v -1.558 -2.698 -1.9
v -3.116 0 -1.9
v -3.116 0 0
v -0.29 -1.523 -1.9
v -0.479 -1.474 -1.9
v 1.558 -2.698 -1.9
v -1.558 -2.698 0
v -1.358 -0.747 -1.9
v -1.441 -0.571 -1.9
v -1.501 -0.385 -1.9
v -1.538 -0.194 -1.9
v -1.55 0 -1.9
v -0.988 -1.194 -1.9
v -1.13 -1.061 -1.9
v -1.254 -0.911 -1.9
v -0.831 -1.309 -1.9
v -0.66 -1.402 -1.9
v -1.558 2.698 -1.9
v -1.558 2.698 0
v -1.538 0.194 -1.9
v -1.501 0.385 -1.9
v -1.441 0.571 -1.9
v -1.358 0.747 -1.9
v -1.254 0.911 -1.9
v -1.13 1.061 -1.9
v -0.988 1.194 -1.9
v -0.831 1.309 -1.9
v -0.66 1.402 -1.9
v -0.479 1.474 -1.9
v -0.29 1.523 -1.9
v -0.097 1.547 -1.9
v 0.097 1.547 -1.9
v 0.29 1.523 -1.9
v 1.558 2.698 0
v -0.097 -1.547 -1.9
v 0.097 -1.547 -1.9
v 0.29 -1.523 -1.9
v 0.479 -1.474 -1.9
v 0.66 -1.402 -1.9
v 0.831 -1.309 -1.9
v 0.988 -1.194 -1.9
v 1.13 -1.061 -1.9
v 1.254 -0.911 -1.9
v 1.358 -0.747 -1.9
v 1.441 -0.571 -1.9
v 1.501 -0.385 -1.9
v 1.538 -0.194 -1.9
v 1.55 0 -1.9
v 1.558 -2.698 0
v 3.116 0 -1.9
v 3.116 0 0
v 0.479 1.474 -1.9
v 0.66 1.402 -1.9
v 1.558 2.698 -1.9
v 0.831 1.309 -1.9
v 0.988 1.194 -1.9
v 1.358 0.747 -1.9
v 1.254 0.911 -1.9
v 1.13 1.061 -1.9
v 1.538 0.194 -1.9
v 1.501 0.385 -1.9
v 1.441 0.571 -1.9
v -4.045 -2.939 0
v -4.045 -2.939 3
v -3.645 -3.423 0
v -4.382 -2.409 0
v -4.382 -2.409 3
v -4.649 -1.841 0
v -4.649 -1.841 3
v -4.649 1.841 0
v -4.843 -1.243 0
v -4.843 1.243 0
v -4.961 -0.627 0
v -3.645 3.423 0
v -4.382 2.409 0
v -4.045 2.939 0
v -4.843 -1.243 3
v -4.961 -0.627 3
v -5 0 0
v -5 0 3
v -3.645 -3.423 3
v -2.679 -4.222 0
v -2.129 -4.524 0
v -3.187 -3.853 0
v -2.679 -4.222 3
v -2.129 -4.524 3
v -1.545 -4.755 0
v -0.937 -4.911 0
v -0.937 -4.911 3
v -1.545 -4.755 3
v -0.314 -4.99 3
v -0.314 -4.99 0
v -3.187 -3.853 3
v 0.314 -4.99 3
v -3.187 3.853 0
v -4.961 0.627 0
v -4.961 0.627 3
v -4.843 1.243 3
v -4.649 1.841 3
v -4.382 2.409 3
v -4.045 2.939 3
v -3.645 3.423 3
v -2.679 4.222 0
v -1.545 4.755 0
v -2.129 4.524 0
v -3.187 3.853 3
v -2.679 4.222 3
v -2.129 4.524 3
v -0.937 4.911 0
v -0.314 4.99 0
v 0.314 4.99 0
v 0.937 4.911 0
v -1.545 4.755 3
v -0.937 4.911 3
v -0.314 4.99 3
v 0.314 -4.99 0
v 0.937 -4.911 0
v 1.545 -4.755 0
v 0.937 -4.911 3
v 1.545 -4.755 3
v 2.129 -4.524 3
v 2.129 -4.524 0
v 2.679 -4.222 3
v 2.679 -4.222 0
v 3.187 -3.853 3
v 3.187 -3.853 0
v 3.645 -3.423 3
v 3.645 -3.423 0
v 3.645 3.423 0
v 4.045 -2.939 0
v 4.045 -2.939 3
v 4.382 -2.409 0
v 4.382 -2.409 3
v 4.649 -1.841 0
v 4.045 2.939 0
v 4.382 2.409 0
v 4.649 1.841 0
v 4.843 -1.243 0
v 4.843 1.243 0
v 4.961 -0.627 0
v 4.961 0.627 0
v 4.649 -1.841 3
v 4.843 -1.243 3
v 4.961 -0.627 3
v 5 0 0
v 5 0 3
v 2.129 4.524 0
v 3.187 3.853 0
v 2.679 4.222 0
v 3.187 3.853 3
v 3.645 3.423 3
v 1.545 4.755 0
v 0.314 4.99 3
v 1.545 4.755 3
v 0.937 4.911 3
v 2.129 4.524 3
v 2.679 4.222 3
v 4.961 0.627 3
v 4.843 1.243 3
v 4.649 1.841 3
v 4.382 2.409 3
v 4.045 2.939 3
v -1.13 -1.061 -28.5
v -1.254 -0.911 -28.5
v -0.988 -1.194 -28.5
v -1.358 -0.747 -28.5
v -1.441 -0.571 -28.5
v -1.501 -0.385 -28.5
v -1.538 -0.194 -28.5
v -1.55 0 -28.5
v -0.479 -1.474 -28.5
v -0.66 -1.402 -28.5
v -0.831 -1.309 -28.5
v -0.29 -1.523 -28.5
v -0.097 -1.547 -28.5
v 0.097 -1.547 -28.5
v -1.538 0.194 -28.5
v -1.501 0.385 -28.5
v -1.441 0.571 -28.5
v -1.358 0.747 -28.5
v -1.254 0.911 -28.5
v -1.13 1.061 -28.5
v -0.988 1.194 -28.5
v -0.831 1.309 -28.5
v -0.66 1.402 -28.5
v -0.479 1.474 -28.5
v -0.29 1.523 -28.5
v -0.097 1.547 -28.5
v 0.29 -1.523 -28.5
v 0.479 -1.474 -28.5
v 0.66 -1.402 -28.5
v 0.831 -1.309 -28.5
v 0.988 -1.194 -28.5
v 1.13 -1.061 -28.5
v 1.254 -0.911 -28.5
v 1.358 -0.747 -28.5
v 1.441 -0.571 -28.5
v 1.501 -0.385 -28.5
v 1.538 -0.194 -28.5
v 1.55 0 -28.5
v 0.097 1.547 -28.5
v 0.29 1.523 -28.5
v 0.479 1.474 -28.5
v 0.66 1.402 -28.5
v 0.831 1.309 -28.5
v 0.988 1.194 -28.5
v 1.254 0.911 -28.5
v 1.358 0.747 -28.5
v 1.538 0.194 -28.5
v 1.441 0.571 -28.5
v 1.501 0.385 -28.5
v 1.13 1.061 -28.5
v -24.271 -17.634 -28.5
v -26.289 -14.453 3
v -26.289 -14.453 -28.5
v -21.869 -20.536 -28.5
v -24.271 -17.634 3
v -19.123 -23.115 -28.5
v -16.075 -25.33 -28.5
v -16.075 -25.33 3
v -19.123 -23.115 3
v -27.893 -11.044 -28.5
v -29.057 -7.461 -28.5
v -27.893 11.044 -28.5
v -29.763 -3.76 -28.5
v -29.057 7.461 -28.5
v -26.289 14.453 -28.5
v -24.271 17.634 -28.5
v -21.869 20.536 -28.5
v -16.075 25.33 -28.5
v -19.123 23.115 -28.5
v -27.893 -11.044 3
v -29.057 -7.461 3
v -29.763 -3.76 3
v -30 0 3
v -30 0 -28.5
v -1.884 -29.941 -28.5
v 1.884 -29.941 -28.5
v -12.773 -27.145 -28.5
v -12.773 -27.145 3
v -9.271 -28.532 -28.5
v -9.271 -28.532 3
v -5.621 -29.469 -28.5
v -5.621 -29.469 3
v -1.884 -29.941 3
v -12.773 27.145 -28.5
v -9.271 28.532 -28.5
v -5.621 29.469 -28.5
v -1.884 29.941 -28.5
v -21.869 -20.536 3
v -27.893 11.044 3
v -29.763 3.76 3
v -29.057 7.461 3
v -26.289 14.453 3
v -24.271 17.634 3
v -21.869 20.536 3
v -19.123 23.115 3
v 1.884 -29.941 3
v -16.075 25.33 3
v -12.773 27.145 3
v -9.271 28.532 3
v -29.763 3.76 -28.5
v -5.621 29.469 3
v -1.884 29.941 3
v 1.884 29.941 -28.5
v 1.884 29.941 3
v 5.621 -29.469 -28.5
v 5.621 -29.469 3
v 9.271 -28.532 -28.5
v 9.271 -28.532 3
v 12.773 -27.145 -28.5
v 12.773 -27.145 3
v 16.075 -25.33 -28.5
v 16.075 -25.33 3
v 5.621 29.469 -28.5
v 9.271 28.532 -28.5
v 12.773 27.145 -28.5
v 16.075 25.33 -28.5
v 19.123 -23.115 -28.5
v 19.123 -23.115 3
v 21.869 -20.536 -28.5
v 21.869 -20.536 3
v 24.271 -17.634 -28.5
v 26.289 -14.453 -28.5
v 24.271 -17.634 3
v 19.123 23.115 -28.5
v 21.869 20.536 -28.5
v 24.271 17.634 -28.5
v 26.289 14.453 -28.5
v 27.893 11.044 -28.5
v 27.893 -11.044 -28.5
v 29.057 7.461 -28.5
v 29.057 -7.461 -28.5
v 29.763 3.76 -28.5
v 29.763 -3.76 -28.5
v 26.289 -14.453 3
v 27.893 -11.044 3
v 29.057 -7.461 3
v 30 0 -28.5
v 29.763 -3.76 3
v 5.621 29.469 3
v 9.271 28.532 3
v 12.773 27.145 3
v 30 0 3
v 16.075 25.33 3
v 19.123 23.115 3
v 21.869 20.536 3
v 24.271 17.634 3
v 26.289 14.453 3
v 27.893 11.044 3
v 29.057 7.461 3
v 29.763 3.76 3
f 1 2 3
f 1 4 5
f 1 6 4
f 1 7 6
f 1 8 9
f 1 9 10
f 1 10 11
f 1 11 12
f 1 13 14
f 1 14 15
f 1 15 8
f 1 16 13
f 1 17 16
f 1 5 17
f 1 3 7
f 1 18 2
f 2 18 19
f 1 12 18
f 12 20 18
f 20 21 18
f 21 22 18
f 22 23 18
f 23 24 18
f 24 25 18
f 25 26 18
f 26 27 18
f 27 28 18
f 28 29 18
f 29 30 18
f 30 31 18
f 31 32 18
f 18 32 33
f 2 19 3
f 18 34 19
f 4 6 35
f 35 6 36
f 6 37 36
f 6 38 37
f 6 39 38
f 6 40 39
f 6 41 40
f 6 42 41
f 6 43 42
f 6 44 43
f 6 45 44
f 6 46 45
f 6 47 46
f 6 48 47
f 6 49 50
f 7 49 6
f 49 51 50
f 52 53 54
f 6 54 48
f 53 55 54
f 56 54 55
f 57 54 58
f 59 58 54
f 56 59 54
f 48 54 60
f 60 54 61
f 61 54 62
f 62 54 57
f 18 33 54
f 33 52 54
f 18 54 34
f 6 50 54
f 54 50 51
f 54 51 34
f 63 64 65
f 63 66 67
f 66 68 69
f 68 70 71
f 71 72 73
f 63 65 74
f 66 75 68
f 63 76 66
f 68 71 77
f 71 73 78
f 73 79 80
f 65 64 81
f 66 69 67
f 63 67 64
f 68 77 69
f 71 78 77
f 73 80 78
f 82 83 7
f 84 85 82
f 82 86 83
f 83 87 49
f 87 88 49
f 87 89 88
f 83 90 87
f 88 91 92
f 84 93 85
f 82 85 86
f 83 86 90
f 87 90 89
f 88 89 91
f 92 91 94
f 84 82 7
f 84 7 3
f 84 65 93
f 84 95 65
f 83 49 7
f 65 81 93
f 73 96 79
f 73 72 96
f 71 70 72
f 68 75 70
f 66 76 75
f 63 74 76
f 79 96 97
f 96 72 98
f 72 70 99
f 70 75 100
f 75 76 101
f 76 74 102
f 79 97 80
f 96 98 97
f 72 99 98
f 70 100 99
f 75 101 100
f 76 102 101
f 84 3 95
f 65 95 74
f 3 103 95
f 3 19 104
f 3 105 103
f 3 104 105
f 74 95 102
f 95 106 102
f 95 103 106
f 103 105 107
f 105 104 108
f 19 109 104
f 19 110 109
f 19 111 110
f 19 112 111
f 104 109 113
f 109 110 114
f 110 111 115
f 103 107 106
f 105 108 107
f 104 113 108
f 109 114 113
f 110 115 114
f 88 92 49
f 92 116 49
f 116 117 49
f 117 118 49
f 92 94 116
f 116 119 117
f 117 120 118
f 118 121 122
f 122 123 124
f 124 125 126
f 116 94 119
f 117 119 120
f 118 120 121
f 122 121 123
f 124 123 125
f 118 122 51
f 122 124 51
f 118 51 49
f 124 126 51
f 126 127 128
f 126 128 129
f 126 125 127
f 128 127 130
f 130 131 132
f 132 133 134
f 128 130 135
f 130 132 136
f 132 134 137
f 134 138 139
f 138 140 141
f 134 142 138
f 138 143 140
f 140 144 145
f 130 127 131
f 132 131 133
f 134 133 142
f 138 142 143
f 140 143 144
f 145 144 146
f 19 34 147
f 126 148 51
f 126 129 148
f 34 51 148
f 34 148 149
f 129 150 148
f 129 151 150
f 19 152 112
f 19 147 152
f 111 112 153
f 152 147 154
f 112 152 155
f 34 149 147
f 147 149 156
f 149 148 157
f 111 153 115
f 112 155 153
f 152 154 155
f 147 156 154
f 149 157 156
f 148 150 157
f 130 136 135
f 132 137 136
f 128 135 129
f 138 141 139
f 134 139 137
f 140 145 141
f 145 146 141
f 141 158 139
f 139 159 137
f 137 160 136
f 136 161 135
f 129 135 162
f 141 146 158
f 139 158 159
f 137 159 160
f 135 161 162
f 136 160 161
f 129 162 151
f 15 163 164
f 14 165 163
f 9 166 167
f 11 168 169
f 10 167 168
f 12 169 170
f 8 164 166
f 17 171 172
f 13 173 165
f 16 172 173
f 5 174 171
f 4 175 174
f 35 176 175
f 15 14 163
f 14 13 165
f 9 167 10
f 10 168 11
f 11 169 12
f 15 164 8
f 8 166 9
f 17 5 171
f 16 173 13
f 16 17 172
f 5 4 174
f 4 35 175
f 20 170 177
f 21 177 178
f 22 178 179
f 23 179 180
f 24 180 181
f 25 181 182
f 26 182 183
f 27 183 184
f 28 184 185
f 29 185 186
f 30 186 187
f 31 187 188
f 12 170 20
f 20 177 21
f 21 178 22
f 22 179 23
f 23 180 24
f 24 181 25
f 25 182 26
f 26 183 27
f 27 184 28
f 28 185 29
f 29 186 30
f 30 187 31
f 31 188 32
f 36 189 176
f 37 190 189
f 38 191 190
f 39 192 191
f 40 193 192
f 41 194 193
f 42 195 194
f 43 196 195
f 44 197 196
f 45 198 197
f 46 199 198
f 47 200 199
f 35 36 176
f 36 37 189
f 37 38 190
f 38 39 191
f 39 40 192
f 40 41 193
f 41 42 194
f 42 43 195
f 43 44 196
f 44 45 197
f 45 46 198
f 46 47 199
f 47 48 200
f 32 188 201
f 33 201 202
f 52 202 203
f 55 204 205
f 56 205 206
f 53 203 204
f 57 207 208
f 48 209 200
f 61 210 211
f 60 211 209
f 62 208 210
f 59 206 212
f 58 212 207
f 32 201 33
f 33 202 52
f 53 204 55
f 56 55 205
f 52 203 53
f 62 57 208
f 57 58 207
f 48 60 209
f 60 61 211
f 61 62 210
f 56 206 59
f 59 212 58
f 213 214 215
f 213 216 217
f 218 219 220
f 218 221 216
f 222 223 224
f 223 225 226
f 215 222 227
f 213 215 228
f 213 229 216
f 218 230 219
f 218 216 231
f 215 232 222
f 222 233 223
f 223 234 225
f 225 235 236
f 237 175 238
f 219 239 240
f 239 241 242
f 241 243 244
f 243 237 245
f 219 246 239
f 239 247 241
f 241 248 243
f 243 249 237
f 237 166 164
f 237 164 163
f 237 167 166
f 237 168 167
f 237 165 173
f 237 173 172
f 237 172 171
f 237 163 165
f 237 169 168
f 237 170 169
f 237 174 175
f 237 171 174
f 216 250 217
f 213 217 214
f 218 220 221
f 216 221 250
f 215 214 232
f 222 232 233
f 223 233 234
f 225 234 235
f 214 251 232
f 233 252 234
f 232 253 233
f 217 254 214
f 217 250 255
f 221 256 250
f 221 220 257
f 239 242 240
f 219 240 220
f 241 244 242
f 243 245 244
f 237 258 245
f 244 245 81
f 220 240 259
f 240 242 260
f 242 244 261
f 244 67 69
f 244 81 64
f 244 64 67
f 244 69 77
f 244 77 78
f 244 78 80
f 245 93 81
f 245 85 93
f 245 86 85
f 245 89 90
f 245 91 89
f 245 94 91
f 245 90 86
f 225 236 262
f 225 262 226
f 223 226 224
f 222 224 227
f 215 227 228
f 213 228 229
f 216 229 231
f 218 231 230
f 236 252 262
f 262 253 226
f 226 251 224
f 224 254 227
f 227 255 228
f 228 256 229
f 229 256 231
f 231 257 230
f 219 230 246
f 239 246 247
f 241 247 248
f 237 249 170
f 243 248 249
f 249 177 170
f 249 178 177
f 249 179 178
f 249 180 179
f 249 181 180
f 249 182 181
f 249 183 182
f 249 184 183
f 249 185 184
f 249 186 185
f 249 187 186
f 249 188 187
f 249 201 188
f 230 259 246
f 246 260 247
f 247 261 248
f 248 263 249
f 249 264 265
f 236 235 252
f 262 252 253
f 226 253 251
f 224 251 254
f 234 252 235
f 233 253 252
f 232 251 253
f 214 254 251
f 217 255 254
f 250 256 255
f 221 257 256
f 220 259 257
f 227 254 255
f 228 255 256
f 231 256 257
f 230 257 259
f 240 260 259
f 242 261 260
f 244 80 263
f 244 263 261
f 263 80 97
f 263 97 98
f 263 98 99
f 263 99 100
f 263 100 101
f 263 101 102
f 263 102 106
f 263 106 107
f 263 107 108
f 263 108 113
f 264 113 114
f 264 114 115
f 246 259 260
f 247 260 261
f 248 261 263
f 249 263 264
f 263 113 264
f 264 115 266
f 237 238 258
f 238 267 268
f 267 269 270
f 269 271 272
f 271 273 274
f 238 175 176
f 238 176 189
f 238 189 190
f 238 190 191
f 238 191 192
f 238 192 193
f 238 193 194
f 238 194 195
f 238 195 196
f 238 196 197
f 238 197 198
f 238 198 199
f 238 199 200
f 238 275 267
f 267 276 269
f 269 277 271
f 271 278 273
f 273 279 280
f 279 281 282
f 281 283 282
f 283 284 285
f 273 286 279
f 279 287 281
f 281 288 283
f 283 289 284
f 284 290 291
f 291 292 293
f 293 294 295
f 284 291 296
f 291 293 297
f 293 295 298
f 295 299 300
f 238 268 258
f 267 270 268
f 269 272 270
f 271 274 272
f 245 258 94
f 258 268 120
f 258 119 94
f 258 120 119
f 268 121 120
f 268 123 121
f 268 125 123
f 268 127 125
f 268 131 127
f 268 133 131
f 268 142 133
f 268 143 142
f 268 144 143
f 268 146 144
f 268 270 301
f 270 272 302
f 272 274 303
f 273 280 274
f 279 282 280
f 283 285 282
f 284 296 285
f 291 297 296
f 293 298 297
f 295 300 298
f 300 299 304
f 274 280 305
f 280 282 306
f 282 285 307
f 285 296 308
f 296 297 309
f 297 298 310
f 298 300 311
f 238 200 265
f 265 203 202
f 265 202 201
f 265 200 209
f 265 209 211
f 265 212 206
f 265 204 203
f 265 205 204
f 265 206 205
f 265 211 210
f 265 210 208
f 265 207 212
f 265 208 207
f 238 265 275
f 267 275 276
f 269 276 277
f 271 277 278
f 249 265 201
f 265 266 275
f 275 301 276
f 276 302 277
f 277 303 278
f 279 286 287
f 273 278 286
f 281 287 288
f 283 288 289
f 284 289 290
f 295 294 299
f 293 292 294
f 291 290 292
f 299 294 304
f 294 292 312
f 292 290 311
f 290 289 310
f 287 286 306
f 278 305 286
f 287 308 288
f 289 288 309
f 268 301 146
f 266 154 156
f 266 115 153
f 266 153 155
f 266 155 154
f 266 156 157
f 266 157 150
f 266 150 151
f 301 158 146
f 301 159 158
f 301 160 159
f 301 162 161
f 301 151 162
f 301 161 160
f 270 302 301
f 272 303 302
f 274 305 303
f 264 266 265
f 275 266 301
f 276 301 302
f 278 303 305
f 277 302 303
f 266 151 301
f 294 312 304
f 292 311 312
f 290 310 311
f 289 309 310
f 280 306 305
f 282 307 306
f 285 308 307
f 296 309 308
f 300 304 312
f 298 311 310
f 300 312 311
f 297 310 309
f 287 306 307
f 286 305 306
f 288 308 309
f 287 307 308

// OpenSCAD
$fn = 50;

difference() {
	union() {
		translate(v = [0, 0, -28.5]) {
			cylinder(h = 31.5, r = 30.0);
		}
	}
	union() {
		translate(v = [0, 0, 0]) {
			rotate(a = [0, 0, 0]) {
				difference() {
					union() {
						translate(v = [0, 0, -1.9]) {
							linear_extrude(height = 1.9) {
								polygon(points = [[3.1158, 0.0], [1.5579000000000005, 2.698361953111554], [-1.5578999999999994, 2.6983619531115544], [-3.1158, 3.815754496783323e-16], [-1.5579000000000014, -2.6983619531115535], [1.557899999999998, -2.6983619531115552]]);
							}
						}
					}
					union();
				}
			}
		}
		#cylinder(h = 3, r = 5.0);
		#translate(v = [0, 0, -100.0]) {
			cylinder(h = 200, r = 1.55);
		}
	}
}
